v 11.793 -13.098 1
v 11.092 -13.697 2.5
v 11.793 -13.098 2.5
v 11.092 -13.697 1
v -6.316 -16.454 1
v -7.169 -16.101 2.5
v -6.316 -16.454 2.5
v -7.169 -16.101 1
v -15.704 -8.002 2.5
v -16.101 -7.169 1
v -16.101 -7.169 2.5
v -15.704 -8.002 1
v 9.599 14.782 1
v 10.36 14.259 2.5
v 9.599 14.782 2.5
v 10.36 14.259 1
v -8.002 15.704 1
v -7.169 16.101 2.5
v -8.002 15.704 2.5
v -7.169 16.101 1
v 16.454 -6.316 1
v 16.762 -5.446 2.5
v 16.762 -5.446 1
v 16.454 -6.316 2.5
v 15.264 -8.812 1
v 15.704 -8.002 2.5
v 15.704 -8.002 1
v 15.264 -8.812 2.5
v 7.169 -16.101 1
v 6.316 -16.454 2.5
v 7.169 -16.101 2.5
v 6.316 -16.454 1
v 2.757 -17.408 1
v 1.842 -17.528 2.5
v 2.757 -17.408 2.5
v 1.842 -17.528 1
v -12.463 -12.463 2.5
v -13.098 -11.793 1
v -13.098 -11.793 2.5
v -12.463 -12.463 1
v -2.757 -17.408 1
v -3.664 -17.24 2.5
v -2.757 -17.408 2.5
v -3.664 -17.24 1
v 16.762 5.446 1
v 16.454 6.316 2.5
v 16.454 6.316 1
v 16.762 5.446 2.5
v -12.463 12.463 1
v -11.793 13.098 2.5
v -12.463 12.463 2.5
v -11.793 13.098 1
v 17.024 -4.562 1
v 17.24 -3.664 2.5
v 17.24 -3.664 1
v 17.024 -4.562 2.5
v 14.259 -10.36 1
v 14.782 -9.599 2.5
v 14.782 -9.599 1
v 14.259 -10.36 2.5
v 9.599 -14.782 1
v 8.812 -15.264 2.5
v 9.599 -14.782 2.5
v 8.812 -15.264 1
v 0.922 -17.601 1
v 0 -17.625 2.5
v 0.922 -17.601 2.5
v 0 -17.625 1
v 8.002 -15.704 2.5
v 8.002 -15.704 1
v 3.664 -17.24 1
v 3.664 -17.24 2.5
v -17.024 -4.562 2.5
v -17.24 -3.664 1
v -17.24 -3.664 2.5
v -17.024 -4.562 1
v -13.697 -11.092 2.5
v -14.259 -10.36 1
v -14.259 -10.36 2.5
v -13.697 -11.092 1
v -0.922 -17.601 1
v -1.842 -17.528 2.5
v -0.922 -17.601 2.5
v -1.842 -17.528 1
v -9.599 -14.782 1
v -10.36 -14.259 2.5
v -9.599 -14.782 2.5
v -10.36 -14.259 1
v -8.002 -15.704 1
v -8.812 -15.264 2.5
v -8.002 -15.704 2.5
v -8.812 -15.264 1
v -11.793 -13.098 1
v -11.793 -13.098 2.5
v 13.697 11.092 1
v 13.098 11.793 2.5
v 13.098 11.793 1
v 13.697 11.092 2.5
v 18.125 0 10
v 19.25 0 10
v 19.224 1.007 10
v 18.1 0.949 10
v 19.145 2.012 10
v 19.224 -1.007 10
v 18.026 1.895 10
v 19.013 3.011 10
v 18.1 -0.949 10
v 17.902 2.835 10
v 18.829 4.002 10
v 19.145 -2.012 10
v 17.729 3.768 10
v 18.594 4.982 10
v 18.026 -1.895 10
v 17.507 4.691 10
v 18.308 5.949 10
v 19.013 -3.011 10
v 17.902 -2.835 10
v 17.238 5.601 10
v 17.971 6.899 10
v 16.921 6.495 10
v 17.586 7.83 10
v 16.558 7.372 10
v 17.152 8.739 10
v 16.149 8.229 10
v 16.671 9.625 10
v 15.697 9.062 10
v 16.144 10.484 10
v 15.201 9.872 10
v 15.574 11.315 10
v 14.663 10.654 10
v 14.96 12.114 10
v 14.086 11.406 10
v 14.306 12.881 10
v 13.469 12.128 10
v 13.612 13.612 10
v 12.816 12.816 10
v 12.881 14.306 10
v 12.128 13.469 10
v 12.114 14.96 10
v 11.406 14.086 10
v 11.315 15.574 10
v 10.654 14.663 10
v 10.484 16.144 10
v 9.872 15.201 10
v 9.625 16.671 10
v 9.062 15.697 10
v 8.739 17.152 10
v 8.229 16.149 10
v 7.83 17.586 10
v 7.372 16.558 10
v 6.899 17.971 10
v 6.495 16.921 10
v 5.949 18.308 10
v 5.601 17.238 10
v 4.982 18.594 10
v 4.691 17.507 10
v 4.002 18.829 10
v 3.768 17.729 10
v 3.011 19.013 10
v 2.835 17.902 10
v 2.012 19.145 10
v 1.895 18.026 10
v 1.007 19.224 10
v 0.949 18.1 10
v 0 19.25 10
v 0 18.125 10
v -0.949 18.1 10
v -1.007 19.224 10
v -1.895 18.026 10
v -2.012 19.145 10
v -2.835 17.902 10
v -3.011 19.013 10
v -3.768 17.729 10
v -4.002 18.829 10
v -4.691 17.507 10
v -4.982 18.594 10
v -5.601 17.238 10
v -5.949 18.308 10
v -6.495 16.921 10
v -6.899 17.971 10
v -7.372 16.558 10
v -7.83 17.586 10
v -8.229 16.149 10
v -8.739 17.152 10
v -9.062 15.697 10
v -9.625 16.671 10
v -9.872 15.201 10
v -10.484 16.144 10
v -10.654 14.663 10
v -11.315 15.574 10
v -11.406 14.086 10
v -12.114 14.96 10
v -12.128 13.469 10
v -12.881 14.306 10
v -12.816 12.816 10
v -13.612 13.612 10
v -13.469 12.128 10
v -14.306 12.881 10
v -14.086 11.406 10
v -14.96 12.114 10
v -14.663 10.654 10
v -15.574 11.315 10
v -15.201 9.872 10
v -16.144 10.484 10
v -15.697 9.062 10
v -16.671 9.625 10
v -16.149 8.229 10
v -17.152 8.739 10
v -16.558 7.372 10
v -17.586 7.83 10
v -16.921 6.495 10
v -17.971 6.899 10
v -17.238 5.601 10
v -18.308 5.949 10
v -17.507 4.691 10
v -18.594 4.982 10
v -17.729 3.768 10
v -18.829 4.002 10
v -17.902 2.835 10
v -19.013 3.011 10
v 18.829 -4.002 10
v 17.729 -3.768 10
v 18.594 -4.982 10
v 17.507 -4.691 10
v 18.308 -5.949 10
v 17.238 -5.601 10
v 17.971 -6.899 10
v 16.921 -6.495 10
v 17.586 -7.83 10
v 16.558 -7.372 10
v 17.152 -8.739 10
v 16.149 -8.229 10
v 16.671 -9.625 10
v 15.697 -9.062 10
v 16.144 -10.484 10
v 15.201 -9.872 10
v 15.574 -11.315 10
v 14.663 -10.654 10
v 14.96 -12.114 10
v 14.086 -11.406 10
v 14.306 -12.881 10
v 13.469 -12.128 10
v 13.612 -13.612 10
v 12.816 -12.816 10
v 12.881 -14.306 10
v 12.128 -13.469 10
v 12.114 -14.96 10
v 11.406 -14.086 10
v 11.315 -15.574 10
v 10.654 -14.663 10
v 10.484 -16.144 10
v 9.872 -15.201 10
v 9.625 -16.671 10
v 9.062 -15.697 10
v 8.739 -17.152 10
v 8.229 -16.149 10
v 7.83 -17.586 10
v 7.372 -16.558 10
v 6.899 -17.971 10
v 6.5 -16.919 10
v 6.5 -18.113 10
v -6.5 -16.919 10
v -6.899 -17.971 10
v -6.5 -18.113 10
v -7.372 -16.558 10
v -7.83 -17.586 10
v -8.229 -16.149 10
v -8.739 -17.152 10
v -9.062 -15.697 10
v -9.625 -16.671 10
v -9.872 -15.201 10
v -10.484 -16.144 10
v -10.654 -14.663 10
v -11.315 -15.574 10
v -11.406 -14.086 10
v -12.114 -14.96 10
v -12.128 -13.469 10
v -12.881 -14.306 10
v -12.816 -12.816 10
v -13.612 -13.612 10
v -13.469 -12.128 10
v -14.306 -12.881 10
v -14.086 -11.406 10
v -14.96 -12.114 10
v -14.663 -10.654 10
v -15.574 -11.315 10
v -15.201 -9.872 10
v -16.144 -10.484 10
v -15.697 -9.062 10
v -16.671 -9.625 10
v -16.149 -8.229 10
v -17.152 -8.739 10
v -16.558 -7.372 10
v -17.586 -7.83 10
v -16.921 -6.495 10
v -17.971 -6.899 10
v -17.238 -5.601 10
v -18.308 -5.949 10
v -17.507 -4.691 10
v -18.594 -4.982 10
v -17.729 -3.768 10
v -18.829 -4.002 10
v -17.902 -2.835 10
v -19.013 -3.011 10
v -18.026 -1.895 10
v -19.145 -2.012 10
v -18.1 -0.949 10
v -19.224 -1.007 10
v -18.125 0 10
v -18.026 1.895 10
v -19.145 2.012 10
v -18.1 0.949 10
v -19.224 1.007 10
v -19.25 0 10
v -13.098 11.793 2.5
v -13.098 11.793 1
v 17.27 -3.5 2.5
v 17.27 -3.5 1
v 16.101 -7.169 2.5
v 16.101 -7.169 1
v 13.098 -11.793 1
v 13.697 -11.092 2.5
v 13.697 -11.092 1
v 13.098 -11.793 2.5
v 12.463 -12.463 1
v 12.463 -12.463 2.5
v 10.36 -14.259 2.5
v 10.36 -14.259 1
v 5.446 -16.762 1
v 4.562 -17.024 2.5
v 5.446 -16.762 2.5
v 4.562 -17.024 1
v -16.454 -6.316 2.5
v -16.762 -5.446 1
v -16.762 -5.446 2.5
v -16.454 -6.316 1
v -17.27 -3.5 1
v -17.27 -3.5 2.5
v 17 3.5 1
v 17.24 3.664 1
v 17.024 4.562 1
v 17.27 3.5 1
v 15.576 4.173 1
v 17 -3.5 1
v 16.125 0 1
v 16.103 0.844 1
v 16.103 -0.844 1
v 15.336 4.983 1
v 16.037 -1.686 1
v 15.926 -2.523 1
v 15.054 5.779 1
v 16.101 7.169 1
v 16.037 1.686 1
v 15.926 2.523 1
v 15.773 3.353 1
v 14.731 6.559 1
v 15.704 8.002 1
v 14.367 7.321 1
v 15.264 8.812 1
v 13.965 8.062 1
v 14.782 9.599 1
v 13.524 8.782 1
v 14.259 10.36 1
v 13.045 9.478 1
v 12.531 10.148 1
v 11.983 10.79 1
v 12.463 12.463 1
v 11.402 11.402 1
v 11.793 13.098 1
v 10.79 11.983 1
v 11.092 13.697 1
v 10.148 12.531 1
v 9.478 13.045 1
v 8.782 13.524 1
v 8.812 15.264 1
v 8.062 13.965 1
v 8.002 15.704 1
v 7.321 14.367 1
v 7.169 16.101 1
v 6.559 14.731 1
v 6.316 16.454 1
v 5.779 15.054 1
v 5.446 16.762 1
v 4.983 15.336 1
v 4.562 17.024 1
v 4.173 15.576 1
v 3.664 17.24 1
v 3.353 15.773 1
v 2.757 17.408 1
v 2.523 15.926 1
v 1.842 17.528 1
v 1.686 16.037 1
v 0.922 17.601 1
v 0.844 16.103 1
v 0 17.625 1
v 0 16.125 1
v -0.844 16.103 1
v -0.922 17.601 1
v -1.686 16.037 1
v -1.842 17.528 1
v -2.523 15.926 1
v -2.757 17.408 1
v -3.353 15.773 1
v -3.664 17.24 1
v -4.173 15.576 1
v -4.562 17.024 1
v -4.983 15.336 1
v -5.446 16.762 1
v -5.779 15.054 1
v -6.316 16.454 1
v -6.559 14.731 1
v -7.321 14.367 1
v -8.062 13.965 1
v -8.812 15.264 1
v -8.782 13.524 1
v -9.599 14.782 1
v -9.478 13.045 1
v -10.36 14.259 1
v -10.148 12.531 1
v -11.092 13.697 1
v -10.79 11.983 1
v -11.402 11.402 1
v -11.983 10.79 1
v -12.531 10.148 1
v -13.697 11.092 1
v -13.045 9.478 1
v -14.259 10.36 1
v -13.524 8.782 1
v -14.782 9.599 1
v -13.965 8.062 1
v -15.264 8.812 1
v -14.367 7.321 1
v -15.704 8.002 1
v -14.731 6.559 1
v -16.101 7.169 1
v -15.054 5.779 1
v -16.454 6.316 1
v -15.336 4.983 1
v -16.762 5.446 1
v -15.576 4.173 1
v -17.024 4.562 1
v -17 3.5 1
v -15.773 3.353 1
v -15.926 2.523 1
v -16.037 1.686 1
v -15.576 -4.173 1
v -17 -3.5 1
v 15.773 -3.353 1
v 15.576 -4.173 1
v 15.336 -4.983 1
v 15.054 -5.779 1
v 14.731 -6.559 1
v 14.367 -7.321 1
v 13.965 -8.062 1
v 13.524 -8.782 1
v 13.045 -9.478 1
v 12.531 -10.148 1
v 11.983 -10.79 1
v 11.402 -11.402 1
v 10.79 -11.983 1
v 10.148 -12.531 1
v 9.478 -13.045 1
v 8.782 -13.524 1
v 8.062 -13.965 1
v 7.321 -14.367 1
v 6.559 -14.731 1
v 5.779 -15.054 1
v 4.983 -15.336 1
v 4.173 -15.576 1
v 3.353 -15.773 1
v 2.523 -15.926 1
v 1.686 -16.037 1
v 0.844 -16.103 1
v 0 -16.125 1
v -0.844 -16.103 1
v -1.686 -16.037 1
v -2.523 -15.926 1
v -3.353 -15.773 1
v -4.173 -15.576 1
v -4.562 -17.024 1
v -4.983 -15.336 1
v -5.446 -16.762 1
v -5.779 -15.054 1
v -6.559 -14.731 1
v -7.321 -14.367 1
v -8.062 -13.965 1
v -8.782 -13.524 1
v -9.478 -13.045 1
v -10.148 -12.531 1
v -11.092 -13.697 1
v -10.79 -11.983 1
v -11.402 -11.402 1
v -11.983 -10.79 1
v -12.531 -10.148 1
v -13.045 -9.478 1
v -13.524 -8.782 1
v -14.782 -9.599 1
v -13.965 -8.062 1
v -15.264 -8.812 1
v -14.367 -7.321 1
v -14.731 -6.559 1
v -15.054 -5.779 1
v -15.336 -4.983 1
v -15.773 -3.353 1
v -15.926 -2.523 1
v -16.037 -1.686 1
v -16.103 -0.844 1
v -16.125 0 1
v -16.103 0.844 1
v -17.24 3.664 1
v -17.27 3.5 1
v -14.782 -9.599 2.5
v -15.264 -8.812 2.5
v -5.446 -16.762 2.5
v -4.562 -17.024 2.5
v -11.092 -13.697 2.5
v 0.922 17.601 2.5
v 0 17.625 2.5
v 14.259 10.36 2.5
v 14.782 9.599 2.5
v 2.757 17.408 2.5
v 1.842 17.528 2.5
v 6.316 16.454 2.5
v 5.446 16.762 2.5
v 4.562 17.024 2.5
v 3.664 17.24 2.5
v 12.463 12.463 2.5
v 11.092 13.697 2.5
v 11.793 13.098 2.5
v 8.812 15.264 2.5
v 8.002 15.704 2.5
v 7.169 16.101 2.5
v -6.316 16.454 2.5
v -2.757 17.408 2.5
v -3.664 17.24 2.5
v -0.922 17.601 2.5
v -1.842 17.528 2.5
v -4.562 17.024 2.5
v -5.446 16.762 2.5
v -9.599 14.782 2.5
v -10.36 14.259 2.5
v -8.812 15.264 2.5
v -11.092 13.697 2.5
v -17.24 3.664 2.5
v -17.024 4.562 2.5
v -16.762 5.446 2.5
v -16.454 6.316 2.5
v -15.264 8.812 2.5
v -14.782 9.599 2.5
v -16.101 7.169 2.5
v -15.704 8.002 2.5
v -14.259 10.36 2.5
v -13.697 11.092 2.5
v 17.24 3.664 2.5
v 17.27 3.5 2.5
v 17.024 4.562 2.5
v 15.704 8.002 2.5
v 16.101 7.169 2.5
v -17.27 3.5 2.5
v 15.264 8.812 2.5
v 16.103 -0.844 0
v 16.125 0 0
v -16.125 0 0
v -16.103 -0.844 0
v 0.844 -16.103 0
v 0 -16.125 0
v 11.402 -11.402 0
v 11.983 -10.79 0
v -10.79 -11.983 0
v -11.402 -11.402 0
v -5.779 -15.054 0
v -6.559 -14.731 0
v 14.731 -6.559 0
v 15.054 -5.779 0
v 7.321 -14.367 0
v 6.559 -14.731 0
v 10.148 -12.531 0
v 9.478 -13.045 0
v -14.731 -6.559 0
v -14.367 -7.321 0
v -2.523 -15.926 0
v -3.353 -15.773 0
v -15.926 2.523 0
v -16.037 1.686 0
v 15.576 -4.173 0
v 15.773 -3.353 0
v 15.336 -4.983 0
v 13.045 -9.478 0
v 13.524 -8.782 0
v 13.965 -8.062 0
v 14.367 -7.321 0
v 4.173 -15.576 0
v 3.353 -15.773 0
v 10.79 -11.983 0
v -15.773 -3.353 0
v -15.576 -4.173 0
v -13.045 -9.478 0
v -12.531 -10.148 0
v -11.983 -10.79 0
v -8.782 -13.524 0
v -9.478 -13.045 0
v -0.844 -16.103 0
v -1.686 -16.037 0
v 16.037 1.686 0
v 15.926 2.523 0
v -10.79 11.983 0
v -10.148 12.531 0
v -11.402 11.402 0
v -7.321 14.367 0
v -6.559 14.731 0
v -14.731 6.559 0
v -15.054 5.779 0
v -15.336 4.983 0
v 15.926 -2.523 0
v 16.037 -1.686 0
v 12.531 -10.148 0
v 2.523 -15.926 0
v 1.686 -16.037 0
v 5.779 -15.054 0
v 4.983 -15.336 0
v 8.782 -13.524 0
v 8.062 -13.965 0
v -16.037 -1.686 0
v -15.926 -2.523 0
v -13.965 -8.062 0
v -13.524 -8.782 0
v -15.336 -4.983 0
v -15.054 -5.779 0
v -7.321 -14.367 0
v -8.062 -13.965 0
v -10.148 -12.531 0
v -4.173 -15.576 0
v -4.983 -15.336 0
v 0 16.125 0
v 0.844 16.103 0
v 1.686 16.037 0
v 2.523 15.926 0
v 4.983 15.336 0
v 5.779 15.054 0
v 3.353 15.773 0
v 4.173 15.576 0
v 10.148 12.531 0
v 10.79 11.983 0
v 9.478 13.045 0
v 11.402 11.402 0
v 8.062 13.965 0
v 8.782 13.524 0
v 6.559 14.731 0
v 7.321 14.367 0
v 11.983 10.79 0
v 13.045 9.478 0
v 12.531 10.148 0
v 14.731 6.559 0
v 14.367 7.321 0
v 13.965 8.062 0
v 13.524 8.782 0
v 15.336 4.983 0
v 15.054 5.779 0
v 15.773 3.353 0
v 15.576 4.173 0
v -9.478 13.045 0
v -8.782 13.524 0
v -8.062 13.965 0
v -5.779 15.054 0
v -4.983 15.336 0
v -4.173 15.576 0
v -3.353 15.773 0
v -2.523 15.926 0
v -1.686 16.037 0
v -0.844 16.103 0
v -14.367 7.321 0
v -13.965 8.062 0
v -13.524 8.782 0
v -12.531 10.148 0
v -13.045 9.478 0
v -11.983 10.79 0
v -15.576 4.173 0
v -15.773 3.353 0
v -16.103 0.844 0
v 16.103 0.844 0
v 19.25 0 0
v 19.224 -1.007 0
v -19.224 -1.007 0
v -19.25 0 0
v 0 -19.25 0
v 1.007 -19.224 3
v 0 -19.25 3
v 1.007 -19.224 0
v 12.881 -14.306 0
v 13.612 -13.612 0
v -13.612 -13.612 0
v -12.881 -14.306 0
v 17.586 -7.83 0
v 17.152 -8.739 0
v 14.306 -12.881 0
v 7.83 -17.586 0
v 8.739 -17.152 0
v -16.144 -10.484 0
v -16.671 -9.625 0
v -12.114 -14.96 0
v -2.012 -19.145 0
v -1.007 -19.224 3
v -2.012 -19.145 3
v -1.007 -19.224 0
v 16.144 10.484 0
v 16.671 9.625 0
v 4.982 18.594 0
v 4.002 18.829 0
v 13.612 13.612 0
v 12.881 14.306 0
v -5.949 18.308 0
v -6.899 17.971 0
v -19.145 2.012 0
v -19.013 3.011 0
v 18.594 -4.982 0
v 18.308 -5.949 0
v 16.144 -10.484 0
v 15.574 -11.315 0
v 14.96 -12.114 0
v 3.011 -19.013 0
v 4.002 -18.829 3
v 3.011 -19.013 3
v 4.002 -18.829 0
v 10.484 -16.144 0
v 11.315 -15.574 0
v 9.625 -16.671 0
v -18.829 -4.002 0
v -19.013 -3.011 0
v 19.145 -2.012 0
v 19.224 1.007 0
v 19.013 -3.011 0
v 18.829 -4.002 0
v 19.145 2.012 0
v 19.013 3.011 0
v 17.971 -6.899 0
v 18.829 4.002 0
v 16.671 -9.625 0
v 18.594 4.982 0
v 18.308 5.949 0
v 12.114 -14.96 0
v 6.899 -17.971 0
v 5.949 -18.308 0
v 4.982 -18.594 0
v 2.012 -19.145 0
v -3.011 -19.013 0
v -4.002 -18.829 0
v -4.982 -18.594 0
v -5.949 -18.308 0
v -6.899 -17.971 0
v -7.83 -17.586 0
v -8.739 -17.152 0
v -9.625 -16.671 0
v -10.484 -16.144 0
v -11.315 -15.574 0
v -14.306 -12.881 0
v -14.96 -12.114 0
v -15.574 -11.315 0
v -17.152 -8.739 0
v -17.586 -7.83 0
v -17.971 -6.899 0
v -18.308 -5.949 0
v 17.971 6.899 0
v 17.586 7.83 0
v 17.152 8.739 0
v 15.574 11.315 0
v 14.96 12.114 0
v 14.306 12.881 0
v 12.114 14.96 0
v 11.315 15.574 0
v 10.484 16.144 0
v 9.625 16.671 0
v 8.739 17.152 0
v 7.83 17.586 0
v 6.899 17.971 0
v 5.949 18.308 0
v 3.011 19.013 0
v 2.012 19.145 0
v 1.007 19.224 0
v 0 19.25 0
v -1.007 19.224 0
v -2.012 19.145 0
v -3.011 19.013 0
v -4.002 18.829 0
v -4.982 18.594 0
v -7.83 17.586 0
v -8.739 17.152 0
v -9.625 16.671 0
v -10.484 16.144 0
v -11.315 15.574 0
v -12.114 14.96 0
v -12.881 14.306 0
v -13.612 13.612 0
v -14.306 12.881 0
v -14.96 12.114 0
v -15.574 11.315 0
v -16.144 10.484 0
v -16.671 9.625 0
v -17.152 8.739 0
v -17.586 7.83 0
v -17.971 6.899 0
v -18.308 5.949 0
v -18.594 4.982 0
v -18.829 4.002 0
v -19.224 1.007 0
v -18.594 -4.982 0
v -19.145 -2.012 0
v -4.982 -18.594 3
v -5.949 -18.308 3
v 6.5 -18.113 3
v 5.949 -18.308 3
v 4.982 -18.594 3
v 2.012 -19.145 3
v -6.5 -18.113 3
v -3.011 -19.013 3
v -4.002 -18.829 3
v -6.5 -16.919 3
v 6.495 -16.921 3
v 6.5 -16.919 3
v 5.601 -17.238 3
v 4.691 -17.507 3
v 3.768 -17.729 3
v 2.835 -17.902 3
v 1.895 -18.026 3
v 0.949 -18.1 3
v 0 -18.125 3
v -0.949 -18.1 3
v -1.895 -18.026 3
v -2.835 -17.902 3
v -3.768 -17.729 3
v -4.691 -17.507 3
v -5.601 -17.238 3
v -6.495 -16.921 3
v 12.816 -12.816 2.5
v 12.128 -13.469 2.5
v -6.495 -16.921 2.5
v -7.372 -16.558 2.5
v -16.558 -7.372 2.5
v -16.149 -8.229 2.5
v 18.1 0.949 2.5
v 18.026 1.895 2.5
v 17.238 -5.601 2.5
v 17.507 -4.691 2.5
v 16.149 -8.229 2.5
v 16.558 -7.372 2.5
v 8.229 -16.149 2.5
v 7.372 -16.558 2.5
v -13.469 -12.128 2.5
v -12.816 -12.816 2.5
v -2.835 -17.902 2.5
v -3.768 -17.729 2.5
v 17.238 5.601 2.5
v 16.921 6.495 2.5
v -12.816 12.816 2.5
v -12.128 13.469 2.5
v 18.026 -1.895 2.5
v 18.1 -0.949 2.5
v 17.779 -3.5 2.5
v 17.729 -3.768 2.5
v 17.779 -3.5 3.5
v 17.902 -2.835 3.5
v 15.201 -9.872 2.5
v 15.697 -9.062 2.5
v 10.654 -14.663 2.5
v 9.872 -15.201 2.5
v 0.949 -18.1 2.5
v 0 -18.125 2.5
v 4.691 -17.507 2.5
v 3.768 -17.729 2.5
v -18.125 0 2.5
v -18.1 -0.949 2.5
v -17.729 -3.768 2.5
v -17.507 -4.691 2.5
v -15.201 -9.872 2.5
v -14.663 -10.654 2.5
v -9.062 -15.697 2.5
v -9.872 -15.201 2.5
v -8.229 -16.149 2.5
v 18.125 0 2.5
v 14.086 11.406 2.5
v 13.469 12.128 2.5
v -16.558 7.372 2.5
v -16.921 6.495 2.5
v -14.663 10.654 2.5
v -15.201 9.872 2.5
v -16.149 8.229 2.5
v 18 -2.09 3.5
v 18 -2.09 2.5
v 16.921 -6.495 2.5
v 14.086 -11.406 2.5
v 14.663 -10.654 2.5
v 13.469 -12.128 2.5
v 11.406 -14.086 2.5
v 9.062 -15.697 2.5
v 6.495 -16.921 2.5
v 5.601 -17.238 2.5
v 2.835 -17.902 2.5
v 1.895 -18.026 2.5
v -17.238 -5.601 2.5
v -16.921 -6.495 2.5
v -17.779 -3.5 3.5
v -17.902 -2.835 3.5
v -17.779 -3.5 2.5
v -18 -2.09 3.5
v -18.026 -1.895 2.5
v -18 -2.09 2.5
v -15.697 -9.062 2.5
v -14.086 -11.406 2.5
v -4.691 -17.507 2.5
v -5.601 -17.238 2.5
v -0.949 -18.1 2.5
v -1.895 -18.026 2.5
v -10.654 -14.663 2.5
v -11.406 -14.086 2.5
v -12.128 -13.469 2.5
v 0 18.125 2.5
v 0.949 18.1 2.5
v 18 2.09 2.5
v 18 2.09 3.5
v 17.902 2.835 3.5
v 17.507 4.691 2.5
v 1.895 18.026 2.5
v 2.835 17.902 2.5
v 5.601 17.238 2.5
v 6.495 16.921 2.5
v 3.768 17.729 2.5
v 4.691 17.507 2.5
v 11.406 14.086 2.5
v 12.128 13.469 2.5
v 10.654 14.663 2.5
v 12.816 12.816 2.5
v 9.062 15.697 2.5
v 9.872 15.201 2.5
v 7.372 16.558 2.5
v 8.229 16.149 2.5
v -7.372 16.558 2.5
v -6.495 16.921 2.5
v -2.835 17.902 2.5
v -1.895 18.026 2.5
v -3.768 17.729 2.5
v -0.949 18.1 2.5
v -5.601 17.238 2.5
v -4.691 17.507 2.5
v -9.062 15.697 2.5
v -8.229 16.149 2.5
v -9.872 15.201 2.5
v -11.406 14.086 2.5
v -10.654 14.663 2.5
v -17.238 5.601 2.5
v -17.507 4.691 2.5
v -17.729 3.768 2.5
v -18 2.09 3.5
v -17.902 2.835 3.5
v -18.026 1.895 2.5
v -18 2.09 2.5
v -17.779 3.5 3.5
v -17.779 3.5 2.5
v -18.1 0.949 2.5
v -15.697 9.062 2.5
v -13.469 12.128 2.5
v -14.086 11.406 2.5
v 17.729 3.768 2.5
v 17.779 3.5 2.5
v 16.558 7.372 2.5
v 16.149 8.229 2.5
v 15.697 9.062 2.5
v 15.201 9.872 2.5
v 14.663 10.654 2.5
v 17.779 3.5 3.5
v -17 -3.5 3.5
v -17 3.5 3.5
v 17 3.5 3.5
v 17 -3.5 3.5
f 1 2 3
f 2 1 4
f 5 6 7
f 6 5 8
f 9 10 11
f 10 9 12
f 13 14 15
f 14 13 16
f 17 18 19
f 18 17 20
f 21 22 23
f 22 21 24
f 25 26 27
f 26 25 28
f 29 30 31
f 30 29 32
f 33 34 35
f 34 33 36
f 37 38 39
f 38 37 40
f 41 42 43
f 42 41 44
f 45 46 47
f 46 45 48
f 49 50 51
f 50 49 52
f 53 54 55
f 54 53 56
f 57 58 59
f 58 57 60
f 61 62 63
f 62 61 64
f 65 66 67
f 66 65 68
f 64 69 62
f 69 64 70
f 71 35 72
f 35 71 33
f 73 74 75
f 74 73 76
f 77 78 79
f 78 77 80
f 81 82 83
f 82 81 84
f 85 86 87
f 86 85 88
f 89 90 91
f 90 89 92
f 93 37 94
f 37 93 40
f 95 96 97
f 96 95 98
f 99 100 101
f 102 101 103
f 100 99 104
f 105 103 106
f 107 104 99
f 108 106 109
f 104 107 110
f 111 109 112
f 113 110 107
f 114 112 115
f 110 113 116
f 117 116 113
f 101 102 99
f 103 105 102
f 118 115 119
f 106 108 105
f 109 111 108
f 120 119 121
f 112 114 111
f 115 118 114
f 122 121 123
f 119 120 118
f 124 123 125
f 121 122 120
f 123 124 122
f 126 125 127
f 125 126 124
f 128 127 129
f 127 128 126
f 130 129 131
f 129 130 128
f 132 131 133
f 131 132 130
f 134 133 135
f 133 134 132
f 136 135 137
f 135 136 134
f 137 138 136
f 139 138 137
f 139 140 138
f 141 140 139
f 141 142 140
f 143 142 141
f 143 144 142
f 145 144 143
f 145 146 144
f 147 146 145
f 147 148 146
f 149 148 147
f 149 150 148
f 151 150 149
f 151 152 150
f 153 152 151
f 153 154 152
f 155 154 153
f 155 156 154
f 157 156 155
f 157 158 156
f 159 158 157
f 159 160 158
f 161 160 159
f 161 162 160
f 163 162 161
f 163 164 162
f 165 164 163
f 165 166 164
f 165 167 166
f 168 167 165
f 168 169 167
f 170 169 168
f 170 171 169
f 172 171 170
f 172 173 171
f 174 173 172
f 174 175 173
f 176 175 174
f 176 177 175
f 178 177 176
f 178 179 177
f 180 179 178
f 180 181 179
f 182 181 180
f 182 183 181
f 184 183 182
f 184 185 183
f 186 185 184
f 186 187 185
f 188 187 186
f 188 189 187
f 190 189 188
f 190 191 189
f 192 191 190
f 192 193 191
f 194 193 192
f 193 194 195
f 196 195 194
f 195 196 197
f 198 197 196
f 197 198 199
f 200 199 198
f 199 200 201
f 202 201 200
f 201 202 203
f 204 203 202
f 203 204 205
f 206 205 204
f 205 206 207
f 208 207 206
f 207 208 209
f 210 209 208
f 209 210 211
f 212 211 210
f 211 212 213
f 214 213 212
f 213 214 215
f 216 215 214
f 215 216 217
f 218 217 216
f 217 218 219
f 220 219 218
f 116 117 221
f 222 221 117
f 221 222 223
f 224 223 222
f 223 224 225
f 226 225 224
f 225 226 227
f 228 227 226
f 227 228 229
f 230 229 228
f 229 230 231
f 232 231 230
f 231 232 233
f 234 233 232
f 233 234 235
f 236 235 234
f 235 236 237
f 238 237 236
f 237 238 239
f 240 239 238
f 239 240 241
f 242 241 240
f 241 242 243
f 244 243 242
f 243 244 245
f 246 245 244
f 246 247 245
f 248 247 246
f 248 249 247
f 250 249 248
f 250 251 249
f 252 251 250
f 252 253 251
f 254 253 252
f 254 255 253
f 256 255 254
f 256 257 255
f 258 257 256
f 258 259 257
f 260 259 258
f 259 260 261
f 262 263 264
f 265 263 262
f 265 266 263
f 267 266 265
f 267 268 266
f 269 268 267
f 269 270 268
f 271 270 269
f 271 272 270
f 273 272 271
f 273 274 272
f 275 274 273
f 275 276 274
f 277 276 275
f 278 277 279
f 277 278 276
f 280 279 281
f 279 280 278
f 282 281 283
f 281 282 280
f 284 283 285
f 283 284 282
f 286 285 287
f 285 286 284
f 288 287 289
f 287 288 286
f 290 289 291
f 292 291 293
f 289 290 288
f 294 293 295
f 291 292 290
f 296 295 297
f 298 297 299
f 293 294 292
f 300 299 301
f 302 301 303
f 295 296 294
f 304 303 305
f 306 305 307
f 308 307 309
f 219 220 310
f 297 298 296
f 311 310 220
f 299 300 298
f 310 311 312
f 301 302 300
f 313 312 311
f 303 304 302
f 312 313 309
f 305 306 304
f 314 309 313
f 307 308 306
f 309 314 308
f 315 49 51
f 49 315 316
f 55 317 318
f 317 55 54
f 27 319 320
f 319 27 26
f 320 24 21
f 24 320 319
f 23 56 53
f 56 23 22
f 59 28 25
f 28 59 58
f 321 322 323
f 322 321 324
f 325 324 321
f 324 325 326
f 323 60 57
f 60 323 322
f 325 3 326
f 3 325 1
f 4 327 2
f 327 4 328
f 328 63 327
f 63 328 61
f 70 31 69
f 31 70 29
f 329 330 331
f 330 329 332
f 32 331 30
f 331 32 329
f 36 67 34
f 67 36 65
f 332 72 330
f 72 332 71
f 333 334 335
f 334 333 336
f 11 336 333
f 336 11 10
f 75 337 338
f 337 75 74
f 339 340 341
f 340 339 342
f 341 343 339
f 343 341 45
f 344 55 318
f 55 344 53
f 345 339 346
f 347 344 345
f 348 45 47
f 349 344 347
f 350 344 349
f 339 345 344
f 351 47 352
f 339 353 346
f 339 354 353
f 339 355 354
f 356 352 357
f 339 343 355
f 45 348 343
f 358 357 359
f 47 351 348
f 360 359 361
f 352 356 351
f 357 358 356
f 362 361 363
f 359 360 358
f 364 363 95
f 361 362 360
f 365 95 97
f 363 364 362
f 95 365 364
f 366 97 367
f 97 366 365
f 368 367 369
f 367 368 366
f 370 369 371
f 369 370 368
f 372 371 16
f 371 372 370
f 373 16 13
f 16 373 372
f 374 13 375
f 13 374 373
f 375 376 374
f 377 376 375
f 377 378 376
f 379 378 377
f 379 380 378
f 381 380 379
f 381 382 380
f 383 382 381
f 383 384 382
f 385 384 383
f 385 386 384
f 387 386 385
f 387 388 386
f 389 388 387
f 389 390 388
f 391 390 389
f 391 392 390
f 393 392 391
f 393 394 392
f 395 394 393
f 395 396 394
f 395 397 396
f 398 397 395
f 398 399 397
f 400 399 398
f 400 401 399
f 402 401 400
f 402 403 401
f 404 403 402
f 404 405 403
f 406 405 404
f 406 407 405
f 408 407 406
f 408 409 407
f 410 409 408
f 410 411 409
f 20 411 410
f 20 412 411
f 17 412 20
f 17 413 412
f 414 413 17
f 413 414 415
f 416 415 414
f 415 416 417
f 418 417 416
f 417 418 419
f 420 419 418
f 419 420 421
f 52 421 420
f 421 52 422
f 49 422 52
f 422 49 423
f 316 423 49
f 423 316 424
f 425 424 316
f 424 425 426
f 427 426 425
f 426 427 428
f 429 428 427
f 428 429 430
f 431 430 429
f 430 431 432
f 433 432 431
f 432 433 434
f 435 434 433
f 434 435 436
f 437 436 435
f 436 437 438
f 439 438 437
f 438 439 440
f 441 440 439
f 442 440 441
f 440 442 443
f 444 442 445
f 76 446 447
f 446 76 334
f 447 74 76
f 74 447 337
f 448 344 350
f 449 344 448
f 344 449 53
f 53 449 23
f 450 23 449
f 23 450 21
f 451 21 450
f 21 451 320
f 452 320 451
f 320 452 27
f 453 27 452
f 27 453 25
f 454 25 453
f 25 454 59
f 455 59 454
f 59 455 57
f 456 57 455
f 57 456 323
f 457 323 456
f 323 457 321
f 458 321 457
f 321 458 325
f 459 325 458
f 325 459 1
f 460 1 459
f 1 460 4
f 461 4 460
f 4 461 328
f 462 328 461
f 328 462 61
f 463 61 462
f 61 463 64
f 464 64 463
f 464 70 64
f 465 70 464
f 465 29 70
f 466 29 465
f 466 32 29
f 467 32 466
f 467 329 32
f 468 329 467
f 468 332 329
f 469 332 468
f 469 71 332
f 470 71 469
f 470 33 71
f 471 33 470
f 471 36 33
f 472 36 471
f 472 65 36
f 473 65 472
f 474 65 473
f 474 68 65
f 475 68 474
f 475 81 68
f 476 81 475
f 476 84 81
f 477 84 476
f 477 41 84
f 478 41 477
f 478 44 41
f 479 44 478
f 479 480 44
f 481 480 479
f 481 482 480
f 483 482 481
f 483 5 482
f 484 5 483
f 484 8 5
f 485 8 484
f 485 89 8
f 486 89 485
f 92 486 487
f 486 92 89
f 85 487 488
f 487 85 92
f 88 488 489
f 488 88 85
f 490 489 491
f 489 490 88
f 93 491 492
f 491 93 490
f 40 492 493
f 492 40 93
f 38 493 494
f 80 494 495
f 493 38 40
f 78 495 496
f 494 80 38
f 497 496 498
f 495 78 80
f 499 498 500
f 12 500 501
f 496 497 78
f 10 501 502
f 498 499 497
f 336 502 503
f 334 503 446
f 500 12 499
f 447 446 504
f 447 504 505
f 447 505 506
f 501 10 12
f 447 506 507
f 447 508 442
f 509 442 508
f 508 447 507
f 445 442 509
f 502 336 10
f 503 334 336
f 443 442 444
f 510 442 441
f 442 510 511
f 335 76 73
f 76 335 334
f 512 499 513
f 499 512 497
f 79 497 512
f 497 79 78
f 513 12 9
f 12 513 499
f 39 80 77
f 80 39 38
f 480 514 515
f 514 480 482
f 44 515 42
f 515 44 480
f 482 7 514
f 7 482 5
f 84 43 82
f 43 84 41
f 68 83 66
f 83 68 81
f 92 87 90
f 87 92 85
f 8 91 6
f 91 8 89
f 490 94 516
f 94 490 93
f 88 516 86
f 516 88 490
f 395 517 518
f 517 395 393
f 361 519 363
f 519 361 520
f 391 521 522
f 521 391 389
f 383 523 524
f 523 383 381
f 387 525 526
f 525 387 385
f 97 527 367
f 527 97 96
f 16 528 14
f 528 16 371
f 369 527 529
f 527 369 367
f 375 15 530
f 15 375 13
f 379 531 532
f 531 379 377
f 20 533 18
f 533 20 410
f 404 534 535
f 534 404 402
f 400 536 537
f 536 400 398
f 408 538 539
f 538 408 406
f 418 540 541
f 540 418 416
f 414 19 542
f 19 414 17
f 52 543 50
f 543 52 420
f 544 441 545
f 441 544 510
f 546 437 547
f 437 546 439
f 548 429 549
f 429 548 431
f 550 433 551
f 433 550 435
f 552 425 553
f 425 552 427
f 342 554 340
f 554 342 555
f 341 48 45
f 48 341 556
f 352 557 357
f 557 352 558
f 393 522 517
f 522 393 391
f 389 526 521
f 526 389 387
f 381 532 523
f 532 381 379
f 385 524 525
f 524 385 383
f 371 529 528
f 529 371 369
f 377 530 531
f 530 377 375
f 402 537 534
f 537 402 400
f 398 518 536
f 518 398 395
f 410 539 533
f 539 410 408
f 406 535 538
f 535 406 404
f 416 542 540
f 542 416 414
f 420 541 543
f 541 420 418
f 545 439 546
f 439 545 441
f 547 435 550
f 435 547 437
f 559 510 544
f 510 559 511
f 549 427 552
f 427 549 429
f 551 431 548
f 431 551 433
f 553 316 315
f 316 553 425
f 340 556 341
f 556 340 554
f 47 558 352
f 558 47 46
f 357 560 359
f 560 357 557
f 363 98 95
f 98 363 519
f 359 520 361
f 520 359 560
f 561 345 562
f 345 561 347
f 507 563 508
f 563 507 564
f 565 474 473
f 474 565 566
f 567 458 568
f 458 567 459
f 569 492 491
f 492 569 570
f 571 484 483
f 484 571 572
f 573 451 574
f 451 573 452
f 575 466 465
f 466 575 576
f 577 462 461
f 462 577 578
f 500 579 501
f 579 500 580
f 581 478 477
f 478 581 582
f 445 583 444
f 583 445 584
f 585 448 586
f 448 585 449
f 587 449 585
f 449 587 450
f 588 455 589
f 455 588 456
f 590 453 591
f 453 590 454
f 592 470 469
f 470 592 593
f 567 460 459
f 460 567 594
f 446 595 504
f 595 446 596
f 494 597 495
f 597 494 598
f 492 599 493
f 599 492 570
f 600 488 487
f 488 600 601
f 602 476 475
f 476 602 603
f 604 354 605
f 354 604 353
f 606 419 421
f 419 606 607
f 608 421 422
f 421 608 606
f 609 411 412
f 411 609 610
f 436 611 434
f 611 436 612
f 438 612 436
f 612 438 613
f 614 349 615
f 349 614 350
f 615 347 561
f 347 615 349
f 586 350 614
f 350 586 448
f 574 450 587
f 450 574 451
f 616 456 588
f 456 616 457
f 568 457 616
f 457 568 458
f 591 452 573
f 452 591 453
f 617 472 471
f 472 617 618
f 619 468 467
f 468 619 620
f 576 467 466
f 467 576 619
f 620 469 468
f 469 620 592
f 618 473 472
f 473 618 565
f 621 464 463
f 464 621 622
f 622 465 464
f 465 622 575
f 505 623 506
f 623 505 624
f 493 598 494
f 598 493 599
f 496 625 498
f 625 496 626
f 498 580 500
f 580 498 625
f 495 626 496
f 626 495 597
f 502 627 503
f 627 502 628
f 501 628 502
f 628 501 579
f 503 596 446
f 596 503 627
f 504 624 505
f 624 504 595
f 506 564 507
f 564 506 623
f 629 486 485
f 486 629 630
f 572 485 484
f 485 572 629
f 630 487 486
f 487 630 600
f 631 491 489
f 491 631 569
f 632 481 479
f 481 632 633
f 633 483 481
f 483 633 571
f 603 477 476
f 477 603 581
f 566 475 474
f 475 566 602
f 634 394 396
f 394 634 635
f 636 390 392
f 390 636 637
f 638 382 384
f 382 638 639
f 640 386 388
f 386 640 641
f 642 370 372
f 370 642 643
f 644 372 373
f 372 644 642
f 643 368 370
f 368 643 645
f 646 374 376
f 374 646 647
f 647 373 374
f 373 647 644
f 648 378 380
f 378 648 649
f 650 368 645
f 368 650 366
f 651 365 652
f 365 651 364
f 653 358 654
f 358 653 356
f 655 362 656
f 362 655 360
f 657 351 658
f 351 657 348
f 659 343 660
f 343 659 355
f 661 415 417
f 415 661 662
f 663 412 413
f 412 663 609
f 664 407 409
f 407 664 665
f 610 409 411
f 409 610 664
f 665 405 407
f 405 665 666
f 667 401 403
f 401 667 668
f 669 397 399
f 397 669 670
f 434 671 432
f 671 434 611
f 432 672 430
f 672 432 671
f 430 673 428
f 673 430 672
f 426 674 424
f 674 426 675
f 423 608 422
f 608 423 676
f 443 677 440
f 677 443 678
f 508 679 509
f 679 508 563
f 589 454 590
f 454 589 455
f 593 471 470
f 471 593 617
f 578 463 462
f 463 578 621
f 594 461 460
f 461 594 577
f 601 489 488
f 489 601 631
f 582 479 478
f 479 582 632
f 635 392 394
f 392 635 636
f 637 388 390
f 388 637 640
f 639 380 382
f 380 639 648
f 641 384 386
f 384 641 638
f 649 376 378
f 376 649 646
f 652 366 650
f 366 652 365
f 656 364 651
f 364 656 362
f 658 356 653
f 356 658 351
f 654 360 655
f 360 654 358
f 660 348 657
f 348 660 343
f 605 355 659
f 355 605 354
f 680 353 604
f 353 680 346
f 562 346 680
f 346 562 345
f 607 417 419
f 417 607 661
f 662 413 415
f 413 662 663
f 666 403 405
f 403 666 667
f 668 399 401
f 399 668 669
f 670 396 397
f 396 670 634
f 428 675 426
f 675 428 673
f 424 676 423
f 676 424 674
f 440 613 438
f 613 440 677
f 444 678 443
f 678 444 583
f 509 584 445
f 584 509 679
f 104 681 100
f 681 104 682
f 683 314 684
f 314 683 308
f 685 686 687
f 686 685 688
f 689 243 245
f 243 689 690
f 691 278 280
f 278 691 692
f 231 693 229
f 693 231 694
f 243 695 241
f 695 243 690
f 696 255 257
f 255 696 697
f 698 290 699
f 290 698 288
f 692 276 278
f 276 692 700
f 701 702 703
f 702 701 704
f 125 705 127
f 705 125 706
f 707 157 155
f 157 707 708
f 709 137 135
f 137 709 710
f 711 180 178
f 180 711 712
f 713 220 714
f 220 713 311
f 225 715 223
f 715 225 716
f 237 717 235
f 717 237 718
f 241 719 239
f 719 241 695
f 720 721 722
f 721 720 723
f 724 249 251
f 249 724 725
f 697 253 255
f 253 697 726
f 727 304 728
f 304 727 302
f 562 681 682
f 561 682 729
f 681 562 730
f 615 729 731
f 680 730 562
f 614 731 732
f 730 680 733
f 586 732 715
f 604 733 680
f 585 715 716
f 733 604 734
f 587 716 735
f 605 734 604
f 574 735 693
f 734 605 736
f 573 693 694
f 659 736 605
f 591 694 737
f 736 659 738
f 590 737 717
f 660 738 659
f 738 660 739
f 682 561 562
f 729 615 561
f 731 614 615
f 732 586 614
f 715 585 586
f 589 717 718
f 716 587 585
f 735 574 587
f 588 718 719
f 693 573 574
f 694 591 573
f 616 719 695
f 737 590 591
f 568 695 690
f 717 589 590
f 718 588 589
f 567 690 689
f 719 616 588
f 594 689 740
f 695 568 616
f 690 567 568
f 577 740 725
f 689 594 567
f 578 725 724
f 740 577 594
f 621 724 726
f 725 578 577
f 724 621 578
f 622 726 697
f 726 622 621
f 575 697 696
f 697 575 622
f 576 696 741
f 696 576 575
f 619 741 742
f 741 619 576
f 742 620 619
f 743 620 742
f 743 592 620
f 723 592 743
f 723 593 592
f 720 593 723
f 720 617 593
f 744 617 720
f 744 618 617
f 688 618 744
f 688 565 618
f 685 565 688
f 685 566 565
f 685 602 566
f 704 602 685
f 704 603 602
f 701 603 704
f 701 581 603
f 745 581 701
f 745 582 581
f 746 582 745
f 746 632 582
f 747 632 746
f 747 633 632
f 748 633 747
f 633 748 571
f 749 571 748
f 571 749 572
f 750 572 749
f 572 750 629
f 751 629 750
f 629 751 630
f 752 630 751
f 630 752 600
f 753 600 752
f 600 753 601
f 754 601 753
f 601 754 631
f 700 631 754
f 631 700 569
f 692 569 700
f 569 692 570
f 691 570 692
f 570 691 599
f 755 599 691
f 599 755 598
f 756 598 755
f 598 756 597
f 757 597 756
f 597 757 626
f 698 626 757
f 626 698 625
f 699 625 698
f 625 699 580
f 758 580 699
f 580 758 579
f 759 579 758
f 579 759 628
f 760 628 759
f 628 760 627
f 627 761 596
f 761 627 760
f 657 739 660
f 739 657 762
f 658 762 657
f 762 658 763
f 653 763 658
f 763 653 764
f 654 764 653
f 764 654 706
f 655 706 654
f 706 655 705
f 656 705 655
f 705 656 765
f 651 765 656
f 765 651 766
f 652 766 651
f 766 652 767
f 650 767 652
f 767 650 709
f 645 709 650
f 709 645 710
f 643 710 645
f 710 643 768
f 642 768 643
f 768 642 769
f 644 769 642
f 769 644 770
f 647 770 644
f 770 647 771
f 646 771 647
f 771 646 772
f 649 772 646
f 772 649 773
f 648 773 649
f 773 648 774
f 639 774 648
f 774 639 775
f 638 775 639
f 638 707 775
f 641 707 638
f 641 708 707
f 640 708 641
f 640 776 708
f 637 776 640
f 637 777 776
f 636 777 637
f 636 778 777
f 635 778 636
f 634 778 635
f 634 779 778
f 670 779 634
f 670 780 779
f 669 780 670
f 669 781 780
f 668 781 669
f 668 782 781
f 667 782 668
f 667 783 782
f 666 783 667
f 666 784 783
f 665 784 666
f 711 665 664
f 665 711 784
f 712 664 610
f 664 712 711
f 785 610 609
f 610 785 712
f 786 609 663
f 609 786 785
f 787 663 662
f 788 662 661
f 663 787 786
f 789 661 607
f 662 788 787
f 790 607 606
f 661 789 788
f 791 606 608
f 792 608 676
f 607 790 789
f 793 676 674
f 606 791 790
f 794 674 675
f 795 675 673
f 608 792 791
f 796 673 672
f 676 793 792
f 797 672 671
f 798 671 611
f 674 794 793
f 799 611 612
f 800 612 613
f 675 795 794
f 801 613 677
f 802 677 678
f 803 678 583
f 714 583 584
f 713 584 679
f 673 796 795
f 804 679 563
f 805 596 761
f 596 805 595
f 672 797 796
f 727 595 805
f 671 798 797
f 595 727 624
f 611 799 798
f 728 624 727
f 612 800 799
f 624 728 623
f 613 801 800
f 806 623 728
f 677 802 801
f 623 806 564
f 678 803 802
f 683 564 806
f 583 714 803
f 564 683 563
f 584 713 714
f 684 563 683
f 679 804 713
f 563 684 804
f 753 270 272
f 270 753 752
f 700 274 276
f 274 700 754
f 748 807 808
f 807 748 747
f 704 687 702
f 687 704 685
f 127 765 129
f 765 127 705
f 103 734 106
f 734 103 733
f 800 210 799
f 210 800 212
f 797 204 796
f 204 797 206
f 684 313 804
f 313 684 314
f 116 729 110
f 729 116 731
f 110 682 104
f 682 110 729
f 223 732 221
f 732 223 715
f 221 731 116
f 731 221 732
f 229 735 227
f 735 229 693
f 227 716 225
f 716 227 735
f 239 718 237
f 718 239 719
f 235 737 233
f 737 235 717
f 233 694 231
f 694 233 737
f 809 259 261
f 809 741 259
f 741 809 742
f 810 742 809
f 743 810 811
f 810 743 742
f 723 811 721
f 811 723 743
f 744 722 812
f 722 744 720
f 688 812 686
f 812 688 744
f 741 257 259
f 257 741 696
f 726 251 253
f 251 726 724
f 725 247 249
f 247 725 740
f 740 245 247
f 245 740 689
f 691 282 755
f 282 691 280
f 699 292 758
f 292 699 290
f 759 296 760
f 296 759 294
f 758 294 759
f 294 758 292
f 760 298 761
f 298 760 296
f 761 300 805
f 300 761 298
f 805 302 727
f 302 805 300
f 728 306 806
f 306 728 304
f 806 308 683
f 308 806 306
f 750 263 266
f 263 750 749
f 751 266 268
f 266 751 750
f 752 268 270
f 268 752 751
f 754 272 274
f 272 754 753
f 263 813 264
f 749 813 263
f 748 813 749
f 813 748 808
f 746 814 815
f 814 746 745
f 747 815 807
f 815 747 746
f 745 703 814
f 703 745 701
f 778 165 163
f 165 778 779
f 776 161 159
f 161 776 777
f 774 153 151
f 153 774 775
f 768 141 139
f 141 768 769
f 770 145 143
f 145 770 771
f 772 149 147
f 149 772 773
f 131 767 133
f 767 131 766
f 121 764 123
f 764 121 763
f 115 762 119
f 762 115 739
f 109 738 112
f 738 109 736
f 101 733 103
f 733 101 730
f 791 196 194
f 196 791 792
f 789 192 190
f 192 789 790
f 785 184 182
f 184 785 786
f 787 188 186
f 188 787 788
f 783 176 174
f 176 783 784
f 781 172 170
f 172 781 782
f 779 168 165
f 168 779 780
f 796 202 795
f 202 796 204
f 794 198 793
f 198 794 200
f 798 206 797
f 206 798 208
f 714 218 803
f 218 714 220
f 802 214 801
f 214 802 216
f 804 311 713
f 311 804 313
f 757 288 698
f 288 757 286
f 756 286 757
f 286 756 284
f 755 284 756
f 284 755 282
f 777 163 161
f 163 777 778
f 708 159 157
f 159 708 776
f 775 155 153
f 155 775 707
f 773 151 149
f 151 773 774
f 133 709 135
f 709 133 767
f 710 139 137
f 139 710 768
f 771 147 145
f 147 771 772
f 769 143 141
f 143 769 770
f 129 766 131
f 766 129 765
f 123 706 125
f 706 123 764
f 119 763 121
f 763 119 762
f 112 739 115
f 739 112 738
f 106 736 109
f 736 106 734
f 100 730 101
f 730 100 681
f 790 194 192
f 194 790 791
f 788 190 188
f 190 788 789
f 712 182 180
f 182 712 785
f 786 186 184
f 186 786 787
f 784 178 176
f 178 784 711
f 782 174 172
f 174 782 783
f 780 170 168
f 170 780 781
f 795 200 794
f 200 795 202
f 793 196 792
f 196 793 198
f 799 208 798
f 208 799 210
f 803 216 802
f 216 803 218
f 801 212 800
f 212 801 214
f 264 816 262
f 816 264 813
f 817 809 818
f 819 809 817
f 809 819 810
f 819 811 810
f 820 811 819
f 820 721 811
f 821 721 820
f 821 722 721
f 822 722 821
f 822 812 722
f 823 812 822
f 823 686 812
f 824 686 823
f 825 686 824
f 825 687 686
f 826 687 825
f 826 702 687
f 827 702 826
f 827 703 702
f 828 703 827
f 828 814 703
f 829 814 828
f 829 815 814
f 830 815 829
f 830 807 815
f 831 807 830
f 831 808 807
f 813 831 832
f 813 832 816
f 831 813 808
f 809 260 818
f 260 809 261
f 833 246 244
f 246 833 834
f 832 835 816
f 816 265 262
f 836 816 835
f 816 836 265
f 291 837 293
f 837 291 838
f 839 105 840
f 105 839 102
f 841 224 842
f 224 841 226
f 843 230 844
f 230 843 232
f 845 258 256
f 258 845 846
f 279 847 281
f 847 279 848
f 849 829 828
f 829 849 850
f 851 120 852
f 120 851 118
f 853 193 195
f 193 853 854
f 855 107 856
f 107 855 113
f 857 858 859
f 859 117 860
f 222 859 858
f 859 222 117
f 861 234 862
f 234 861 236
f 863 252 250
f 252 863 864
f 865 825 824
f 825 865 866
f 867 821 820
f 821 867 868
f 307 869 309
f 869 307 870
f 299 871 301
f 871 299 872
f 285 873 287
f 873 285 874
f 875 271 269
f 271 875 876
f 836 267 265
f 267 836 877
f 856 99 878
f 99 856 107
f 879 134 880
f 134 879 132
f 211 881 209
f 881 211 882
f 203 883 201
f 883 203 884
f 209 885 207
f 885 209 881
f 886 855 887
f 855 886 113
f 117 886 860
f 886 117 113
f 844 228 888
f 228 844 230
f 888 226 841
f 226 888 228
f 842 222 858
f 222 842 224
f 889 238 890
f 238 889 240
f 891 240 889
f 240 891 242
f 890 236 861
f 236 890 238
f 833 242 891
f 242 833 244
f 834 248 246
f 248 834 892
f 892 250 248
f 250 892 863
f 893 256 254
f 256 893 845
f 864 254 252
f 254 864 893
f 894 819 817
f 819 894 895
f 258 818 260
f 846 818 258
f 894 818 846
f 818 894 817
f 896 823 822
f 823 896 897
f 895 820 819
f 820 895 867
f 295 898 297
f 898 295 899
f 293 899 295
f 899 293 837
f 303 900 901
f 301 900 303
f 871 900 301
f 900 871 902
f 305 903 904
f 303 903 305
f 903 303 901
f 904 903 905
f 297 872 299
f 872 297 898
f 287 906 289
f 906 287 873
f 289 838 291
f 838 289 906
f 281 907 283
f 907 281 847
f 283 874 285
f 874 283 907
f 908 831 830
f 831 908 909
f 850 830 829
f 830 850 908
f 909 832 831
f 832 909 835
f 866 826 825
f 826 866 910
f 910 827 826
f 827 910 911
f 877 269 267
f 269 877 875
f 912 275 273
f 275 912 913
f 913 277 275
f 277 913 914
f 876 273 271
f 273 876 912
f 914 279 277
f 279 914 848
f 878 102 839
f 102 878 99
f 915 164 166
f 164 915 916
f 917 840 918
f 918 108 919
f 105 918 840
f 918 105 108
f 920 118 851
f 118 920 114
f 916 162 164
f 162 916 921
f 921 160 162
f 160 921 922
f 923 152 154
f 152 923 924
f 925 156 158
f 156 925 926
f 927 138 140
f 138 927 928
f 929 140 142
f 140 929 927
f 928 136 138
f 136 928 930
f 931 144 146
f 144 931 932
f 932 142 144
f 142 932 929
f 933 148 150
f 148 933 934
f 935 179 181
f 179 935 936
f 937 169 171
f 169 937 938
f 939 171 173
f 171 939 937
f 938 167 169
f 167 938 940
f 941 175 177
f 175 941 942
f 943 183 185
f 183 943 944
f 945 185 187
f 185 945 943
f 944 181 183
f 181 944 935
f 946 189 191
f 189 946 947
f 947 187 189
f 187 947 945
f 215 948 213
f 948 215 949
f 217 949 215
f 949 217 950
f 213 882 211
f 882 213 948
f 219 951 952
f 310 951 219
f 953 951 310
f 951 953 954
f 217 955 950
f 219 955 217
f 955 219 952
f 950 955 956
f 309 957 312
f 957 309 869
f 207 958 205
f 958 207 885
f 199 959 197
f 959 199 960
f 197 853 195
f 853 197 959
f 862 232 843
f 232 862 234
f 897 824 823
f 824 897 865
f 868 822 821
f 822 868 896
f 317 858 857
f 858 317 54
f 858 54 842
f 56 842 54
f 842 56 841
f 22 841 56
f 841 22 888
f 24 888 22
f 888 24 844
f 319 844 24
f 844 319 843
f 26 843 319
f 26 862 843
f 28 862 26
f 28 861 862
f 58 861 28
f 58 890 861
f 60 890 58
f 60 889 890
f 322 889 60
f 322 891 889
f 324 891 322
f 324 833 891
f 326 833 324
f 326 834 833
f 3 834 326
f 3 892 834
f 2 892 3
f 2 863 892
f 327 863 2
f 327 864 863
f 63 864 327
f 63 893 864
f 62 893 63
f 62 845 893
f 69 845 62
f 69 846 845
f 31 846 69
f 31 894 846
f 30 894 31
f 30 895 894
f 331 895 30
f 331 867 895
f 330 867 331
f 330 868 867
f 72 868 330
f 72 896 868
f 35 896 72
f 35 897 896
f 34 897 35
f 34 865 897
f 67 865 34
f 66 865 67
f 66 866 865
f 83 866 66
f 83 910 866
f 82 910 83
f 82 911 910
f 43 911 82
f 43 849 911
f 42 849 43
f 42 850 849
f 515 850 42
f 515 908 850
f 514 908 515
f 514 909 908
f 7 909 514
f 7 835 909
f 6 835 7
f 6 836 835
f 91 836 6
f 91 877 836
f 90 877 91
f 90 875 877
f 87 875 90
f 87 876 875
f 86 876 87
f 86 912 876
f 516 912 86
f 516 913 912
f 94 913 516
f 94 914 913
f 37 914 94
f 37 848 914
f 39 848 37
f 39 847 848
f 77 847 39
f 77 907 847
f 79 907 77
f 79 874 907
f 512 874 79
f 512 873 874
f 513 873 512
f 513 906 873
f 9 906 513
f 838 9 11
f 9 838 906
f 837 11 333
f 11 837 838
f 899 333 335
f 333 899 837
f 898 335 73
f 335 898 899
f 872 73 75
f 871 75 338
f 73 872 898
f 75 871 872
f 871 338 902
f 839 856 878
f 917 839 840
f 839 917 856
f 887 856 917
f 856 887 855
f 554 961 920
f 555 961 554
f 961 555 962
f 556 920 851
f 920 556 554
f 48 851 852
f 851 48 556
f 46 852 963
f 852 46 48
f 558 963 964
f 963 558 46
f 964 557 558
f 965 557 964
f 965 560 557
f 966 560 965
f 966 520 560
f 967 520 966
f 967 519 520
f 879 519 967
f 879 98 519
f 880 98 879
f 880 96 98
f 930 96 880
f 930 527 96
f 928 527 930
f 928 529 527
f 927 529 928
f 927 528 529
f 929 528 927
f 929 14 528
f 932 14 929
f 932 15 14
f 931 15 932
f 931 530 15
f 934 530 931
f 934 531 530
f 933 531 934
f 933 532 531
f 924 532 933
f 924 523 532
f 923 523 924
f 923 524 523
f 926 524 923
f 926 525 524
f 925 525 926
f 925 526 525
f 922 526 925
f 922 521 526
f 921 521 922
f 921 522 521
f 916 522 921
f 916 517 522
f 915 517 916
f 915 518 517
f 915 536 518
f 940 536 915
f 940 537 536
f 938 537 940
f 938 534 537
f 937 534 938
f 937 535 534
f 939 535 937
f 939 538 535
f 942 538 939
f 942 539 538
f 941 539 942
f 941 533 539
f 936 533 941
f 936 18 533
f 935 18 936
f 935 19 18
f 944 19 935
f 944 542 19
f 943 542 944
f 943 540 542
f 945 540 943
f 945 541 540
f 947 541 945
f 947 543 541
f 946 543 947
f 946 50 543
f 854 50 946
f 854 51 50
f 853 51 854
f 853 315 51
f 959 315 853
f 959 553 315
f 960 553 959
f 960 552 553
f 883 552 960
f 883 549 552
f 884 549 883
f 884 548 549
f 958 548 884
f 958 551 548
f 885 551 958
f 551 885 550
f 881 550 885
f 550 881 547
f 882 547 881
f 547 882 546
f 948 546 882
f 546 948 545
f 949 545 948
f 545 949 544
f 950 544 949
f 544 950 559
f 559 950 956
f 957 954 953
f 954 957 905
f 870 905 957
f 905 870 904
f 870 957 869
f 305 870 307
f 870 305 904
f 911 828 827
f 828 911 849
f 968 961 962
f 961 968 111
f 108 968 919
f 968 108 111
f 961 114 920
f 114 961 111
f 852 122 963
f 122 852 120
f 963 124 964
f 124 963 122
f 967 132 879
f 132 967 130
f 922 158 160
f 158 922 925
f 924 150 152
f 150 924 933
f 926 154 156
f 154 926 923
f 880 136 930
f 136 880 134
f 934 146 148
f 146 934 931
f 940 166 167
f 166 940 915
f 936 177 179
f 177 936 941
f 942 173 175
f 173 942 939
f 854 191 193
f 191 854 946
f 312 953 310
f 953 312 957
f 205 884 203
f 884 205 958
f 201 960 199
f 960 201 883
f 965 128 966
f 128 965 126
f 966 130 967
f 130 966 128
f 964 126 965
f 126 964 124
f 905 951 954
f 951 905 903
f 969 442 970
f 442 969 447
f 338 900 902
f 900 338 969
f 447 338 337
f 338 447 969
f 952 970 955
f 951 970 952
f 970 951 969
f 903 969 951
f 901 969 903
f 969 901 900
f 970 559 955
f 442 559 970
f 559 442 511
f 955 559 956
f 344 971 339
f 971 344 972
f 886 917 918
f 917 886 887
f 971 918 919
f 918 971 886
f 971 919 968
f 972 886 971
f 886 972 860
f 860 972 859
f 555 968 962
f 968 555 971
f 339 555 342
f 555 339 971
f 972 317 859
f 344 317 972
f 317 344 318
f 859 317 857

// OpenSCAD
include <BOSL/constants.scad>
use <BOSL/shapes.scad>
use <BOSL/transforms.scad>
use <BOSL/masks.scad>

$fn=120; //circle smoothness

sensorCutout = 35.25;
snapLipOverlap = 6.5;

controller = false;
height = 10;
// *OR*
//controller = true; // true=this is a controller board (for mini) -- false=regular setup 
//height = 12;


xrot(180) down(height)

union() {  
  difference(){
     color("lime") cylinder(h=height, d=sensorCutout+3.25); //disc object
        if (controller) {
          color("aqua") cylinder(h=height-2, d=sensorCutout); //sensor cutout (not used -- stiffen to 2 mm)
          //color("peru") up(height-3.9) cylinder(h=4, d1=5, d2=2); // peep hole for LED -- covered version
        }
        if (!controller) {
          color("aqua") cylinder(h=height-1, d=sensorCutout); //sensor cutout (full width)
          color("peru") up(height-3) cylinder(h=height/2, d=sensorCutout-3); // touchable sensor surface
        }
      if (!controller) {
        color("orange") translate([-(13/2), (sensorCutout/2)-5, 0]) cube([13,10,7]); //usb cutout
      }
      else {
        color("orange") translate([-(13/2), (sensorCutout/2)-5, 0]) cube([13,10,9]); //usb cutout
      }
      color("red") cylinder(h=snapLipOverlap+1, d=sensorCutout+1); // snap lip

     //back(3.14) up(height-1.75) triforce();  
    
  }//difference

  // MKIII GlidePoint alignment (sides)
  if (!controller) {
    tabHeight = height-snapLipOverlap;
    color("blue")   up(height-(tabHeight/2)) left(17.5) cuboid([1, 7, tabHeight]); 
    color("blue")  up(height-(tabHeight/2)) right(17.5) cuboid([1, 7, tabHeight]); 
  }

}

module triforce() {
   #prismoid(size1=[10,1], size2=[0,1], h=10, orient=ORIENT_Y);
   left(5) forward(10) #prismoid(size1=[10,1], size2=[0,1], h=10, orient=ORIENT_Y);
   right(5) forward(10) #prismoid(size1=[10,1], size2=[0,1], h=10, orient=ORIENT_Y);
}
